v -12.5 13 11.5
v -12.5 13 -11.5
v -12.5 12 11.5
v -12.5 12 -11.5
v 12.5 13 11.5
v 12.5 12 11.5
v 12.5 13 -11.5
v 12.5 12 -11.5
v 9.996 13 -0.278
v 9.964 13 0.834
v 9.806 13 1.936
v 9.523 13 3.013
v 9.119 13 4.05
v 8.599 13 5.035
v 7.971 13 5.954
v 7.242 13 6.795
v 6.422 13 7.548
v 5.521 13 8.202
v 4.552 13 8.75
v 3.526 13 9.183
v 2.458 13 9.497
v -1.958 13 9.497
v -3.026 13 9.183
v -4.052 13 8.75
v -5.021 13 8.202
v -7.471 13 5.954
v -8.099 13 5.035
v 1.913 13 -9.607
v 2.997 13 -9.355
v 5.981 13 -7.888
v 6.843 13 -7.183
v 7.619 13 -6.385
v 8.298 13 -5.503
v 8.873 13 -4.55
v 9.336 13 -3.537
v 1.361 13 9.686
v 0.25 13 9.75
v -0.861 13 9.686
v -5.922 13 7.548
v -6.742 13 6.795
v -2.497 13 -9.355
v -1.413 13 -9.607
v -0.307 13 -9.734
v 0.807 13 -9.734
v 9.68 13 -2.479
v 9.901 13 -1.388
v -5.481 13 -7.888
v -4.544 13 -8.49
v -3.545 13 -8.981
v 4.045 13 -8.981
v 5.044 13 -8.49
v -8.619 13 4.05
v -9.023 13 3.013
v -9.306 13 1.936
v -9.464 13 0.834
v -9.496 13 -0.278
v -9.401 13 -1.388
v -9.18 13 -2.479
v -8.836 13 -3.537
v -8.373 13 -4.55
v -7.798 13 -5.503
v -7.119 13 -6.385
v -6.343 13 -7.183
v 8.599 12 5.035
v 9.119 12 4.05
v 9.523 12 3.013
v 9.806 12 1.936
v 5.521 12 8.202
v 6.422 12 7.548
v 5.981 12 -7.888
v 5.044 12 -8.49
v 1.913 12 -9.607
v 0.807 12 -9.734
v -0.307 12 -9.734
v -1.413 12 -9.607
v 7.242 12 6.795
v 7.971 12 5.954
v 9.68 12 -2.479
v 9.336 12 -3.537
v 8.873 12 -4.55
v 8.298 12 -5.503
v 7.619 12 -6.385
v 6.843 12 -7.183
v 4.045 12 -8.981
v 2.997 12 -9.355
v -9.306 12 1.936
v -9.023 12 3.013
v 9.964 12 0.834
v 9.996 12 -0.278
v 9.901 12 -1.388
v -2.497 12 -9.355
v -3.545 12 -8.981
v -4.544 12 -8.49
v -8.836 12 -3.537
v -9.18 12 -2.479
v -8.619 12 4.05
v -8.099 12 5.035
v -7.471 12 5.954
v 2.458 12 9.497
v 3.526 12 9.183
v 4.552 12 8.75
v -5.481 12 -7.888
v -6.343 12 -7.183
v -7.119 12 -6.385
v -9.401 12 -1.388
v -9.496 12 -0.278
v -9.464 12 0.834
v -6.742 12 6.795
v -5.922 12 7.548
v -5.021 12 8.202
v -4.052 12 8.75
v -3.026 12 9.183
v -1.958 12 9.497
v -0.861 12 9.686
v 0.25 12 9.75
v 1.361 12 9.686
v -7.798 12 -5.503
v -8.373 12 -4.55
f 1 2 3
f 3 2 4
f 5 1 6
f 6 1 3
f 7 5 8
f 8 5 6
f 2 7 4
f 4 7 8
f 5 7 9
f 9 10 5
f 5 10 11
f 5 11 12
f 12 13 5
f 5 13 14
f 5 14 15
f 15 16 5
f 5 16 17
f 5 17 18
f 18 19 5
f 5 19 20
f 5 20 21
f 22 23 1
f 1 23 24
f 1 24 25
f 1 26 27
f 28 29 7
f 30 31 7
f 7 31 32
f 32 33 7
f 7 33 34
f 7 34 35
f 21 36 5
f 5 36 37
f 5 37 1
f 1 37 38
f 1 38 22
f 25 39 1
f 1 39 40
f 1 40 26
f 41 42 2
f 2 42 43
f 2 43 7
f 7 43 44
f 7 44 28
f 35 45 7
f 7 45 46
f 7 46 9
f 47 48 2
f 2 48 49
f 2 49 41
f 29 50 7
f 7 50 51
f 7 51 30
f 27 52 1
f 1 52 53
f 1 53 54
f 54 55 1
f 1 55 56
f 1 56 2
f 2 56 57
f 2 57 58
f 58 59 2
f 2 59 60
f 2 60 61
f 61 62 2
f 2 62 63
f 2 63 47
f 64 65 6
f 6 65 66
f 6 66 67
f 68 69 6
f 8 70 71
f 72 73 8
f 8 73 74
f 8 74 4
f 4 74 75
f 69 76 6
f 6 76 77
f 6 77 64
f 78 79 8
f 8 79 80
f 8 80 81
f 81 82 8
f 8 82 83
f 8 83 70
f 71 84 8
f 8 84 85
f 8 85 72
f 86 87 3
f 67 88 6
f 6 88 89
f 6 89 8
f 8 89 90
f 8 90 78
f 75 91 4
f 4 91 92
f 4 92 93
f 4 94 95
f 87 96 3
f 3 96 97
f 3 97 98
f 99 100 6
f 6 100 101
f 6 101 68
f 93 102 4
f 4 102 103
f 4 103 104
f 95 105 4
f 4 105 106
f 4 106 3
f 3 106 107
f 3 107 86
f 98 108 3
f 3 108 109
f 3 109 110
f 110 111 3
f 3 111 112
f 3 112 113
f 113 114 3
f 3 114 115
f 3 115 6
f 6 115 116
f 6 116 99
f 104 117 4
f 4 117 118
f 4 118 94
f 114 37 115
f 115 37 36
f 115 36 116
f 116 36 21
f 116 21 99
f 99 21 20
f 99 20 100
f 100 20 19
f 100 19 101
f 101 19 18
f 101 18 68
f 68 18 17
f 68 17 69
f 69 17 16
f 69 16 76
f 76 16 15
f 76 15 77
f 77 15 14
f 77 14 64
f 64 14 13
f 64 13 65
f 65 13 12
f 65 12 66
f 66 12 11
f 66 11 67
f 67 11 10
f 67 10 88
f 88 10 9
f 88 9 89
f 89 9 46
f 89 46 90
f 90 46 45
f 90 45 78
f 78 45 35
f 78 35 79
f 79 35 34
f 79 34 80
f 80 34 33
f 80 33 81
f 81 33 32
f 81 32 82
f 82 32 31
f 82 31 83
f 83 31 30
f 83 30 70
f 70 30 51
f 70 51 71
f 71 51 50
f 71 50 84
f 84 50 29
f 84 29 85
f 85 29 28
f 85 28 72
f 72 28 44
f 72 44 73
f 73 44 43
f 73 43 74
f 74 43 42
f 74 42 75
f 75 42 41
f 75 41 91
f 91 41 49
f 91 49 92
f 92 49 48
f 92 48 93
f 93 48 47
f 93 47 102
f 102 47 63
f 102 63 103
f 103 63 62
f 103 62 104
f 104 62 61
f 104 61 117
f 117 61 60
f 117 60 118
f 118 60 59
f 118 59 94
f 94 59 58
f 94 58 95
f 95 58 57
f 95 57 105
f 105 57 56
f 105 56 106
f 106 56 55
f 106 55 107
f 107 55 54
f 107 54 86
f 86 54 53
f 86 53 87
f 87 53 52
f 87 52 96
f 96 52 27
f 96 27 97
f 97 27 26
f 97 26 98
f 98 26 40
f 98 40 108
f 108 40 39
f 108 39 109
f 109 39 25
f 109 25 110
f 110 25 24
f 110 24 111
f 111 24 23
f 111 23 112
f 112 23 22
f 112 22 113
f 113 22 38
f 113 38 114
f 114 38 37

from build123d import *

# Parameters (mm, degrees)
SKETCH_1_W          = 25
SKETCH_1_H          = 23
EXTRUDE_1_DEPTH     = 12
CUT_EXTRUDE_START   = 1
SKETCH_2_W          = 25
SKETCH_2_H          = 21
CUT_EXTRUDE_1_DEPTH = 11
EXTRUDE_START       = 12
SKETCH_6_W          = 25
SKETCH_6_H          = 23
EXTRUDE_3_DEPTH     = 1
CUT_EXTRUDE_START_2 = 13
SKETCH_8_R          = 9.75
CUT_EXTRUDE_2_DEPTH = 1
SKETCH_10_W         = 25
SKETCH_10_H         = 23
CUT_EXTRUDE_4_DEPTH = 12


with BuildPart() as part:
    # 스케치1 → 보스-돌출1 (new body)
    with BuildSketch(Plane(origin=(0, 0, 0), x_dir=(1, 0, 0), z_dir=(0, 1, 0))):
        Rectangle(SKETCH_1_W, SKETCH_1_H)
    extrude(amount=EXTRUDE_1_DEPTH)

    # 스케치2 → 컷-돌출1 (cut)
    with BuildSketch(Plane(origin=(0, 0, 0), x_dir=(1, 0, 0), z_dir=(0, 1, 0)).offset(CUT_EXTRUDE_START)):
        with Locations((1, 0)):
            Rectangle(SKETCH_2_W, SKETCH_2_H)
    extrude(amount=CUT_EXTRUDE_1_DEPTH, mode=Mode.SUBTRACT)

    # 스케치10 → 컷-돌출4 (cut)
    with BuildSketch(Plane.XZ):
        Rectangle(SKETCH_10_W, SKETCH_10_H)
    extrude(amount=-CUT_EXTRUDE_4_DEPTH, mode=Mode.SUBTRACT)


with BuildPart() as body_2:
    # 스케치6 → 보스-돌출3 (new body)
    with BuildSketch(Plane(origin=(0, 0, 0), x_dir=(1, 0, 0), z_dir=(0, 1, 0)).offset(EXTRUDE_START)):
        Rectangle(SKETCH_6_W, SKETCH_6_H)
    extrude(amount=EXTRUDE_3_DEPTH)

    # 스케치8 → 컷-돌출2 (cut)
    with BuildSketch(Plane(origin=(0, 0, 0), x_dir=(1, 0, 0), z_dir=(0, 1, 0)).offset(CUT_EXTRUDE_START_2)):
        with Locations(Location((0.25, 0, 0), (0, 0, 270))):
            Circle(SKETCH_8_R)
    extrude(amount=-CUT_EXTRUDE_2_DEPTH, mode=Mode.SUBTRACT)


solid = body_2.part
